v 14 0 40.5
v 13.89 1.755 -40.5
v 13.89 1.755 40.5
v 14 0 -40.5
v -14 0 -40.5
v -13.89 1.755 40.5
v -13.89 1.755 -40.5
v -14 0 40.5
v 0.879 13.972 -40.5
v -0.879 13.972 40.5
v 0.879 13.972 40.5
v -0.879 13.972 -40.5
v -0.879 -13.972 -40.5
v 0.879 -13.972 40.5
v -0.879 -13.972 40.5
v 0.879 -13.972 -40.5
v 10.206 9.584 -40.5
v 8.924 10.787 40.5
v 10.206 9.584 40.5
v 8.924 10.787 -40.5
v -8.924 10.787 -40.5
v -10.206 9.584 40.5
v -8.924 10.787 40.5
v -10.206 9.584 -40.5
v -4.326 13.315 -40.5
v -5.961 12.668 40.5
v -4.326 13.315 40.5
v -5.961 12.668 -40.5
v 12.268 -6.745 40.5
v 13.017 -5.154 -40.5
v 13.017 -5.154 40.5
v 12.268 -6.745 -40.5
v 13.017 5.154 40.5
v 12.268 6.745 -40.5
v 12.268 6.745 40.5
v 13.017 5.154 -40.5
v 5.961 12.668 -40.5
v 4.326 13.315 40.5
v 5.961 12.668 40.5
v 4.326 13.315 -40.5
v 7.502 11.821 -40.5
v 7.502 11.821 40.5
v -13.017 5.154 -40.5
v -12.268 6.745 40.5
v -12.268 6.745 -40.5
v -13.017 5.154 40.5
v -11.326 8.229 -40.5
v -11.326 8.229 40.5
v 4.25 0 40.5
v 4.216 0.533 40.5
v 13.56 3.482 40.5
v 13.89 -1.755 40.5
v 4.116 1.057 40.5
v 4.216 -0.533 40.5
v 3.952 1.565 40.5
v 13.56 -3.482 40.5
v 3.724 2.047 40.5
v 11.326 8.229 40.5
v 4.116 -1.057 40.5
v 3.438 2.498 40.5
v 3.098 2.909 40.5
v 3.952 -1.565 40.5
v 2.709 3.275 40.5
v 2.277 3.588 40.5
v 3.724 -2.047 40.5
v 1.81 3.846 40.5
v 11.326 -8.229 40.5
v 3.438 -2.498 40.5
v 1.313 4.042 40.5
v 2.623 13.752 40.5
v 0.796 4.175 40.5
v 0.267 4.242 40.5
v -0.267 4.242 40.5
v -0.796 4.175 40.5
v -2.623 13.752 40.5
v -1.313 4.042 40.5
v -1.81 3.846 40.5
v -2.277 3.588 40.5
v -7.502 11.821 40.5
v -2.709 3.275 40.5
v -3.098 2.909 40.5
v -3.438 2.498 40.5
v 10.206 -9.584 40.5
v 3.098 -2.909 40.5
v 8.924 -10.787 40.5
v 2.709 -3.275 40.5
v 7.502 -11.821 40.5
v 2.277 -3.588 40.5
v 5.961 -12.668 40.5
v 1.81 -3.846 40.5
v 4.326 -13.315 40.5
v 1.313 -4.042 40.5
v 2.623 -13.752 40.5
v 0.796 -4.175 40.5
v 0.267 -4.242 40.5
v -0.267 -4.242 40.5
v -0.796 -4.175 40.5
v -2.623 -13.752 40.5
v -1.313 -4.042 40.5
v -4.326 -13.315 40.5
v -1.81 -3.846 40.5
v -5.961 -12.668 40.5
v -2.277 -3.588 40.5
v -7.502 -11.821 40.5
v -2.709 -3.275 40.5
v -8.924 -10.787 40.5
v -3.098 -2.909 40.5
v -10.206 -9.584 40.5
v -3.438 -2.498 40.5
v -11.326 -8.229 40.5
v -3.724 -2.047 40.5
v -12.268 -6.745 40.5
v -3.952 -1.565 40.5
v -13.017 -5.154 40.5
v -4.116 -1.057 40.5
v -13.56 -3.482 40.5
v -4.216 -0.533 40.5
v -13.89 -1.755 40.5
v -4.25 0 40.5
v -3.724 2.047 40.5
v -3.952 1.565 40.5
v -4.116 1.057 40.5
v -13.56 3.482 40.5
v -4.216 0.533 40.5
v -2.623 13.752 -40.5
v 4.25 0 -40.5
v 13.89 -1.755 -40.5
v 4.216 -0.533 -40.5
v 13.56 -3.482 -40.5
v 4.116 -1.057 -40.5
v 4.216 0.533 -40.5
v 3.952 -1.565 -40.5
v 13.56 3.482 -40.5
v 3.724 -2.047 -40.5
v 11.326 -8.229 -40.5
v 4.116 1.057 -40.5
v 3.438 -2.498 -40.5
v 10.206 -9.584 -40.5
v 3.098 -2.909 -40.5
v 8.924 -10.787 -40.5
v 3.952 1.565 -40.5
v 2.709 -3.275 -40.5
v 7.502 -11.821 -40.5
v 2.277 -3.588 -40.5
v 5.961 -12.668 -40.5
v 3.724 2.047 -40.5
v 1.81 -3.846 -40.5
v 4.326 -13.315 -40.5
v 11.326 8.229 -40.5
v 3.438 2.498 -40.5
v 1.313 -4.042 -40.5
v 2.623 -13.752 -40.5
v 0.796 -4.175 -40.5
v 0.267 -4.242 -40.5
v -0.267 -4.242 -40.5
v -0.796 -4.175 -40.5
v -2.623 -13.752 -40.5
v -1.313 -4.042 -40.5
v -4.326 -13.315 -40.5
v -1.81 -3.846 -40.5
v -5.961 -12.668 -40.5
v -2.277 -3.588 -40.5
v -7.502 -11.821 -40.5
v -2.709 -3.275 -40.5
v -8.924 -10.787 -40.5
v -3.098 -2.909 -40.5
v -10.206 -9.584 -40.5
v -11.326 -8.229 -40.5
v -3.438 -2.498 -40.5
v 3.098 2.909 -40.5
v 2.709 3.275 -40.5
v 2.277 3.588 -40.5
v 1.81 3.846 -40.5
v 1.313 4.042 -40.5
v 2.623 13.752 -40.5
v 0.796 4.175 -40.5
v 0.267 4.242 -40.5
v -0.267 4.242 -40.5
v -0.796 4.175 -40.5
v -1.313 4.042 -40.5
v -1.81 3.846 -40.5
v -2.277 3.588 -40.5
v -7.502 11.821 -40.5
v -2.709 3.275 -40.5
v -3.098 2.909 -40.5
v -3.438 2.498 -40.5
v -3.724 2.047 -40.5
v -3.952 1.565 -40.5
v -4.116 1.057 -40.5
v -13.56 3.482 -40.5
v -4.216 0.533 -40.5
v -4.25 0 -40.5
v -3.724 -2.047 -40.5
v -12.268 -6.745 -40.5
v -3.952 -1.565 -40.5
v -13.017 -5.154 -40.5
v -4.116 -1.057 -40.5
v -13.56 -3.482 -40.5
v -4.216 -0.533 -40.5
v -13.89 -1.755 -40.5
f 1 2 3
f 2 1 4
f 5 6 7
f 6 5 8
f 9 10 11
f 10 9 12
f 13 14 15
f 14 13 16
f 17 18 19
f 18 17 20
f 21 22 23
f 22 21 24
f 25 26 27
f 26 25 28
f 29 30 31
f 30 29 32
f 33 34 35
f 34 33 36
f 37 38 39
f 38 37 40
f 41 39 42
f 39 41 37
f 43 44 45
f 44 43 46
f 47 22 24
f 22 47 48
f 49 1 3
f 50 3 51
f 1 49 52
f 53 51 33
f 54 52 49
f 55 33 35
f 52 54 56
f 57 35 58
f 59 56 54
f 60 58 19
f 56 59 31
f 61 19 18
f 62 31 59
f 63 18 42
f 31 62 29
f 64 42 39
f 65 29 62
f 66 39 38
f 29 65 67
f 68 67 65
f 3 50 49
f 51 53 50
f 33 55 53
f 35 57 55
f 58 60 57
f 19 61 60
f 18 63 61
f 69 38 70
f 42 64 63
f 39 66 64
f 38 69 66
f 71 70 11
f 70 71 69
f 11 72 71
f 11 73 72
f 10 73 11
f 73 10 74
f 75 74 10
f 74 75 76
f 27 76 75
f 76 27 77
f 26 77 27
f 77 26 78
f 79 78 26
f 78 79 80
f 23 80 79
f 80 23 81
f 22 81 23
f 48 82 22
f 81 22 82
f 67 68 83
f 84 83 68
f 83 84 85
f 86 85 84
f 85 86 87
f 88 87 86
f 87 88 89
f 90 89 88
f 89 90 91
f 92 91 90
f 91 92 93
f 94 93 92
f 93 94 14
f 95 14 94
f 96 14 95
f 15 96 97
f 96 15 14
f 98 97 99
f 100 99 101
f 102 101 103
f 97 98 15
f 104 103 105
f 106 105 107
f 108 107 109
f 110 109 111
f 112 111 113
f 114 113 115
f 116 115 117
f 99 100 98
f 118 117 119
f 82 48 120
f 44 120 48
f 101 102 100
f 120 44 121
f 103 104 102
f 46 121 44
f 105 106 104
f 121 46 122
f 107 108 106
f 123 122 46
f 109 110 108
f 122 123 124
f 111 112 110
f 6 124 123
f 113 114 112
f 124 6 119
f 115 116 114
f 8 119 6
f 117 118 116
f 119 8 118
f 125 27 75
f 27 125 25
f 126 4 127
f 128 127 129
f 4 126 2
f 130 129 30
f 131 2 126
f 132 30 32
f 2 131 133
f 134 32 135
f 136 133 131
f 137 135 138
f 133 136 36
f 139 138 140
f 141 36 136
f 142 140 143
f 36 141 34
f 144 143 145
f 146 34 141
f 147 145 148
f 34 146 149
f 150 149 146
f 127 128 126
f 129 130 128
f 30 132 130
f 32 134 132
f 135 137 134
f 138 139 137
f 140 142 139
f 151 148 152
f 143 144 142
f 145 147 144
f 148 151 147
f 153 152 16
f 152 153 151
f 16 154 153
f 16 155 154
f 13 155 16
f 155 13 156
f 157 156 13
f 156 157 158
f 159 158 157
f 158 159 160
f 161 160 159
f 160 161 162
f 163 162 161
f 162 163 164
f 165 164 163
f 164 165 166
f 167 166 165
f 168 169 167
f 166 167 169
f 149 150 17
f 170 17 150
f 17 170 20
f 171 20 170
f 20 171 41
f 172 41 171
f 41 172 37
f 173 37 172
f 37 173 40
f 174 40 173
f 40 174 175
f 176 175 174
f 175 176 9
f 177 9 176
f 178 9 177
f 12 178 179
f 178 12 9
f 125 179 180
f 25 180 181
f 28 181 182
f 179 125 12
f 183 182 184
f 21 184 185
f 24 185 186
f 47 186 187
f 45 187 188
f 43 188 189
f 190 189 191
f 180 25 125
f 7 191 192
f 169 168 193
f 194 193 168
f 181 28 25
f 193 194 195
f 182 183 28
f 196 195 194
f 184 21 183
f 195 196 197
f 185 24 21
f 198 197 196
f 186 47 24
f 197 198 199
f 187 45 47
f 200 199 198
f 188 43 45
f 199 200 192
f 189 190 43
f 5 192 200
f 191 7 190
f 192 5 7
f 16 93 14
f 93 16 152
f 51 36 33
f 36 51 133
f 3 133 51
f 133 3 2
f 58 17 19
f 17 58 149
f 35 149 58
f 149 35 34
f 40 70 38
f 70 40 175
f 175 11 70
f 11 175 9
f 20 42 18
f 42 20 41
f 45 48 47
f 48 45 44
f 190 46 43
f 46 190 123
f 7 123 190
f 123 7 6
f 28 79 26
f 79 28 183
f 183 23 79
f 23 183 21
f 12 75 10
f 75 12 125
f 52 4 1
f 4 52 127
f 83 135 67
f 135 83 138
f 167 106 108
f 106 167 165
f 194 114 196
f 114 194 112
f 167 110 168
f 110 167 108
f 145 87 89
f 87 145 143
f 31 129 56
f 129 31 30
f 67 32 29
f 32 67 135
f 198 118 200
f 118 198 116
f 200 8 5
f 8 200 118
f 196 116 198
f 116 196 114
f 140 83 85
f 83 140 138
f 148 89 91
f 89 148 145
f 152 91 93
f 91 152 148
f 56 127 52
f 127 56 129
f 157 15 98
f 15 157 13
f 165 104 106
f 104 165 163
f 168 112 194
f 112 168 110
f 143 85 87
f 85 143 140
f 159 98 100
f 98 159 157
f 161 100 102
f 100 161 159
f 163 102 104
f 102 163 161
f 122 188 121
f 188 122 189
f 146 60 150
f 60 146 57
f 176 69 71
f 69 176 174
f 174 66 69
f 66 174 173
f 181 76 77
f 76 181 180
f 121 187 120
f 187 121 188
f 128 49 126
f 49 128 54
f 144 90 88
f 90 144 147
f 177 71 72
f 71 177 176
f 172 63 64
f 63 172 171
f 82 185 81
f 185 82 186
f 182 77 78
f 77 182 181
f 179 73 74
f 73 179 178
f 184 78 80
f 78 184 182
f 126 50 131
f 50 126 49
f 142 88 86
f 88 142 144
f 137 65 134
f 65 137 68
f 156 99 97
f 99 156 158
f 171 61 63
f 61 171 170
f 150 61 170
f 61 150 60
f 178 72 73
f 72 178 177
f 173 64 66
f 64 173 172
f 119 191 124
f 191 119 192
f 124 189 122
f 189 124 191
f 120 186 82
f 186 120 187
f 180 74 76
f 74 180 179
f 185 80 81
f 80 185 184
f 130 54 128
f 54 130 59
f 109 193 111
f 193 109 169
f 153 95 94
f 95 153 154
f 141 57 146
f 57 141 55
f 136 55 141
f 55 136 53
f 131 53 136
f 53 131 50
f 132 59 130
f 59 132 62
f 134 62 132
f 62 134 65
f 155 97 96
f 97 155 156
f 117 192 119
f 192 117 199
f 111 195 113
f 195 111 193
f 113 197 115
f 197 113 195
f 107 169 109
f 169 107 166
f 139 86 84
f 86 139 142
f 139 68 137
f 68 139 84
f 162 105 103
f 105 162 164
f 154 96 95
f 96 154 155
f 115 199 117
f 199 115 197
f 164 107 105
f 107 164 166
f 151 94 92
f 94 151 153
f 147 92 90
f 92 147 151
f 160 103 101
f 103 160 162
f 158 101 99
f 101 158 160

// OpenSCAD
$fn = 50;


difference() {
	union() {
		translate(v = [0, 0, -40.5000000000]) {
			cylinder(h = 81, r = 14.0000000000);
		}
	}
	union() {
		translate(v = [0, 0, -100.0000000000]) {
			cylinder(h = 200, r = 4.2500000000);
		}
	}
}
